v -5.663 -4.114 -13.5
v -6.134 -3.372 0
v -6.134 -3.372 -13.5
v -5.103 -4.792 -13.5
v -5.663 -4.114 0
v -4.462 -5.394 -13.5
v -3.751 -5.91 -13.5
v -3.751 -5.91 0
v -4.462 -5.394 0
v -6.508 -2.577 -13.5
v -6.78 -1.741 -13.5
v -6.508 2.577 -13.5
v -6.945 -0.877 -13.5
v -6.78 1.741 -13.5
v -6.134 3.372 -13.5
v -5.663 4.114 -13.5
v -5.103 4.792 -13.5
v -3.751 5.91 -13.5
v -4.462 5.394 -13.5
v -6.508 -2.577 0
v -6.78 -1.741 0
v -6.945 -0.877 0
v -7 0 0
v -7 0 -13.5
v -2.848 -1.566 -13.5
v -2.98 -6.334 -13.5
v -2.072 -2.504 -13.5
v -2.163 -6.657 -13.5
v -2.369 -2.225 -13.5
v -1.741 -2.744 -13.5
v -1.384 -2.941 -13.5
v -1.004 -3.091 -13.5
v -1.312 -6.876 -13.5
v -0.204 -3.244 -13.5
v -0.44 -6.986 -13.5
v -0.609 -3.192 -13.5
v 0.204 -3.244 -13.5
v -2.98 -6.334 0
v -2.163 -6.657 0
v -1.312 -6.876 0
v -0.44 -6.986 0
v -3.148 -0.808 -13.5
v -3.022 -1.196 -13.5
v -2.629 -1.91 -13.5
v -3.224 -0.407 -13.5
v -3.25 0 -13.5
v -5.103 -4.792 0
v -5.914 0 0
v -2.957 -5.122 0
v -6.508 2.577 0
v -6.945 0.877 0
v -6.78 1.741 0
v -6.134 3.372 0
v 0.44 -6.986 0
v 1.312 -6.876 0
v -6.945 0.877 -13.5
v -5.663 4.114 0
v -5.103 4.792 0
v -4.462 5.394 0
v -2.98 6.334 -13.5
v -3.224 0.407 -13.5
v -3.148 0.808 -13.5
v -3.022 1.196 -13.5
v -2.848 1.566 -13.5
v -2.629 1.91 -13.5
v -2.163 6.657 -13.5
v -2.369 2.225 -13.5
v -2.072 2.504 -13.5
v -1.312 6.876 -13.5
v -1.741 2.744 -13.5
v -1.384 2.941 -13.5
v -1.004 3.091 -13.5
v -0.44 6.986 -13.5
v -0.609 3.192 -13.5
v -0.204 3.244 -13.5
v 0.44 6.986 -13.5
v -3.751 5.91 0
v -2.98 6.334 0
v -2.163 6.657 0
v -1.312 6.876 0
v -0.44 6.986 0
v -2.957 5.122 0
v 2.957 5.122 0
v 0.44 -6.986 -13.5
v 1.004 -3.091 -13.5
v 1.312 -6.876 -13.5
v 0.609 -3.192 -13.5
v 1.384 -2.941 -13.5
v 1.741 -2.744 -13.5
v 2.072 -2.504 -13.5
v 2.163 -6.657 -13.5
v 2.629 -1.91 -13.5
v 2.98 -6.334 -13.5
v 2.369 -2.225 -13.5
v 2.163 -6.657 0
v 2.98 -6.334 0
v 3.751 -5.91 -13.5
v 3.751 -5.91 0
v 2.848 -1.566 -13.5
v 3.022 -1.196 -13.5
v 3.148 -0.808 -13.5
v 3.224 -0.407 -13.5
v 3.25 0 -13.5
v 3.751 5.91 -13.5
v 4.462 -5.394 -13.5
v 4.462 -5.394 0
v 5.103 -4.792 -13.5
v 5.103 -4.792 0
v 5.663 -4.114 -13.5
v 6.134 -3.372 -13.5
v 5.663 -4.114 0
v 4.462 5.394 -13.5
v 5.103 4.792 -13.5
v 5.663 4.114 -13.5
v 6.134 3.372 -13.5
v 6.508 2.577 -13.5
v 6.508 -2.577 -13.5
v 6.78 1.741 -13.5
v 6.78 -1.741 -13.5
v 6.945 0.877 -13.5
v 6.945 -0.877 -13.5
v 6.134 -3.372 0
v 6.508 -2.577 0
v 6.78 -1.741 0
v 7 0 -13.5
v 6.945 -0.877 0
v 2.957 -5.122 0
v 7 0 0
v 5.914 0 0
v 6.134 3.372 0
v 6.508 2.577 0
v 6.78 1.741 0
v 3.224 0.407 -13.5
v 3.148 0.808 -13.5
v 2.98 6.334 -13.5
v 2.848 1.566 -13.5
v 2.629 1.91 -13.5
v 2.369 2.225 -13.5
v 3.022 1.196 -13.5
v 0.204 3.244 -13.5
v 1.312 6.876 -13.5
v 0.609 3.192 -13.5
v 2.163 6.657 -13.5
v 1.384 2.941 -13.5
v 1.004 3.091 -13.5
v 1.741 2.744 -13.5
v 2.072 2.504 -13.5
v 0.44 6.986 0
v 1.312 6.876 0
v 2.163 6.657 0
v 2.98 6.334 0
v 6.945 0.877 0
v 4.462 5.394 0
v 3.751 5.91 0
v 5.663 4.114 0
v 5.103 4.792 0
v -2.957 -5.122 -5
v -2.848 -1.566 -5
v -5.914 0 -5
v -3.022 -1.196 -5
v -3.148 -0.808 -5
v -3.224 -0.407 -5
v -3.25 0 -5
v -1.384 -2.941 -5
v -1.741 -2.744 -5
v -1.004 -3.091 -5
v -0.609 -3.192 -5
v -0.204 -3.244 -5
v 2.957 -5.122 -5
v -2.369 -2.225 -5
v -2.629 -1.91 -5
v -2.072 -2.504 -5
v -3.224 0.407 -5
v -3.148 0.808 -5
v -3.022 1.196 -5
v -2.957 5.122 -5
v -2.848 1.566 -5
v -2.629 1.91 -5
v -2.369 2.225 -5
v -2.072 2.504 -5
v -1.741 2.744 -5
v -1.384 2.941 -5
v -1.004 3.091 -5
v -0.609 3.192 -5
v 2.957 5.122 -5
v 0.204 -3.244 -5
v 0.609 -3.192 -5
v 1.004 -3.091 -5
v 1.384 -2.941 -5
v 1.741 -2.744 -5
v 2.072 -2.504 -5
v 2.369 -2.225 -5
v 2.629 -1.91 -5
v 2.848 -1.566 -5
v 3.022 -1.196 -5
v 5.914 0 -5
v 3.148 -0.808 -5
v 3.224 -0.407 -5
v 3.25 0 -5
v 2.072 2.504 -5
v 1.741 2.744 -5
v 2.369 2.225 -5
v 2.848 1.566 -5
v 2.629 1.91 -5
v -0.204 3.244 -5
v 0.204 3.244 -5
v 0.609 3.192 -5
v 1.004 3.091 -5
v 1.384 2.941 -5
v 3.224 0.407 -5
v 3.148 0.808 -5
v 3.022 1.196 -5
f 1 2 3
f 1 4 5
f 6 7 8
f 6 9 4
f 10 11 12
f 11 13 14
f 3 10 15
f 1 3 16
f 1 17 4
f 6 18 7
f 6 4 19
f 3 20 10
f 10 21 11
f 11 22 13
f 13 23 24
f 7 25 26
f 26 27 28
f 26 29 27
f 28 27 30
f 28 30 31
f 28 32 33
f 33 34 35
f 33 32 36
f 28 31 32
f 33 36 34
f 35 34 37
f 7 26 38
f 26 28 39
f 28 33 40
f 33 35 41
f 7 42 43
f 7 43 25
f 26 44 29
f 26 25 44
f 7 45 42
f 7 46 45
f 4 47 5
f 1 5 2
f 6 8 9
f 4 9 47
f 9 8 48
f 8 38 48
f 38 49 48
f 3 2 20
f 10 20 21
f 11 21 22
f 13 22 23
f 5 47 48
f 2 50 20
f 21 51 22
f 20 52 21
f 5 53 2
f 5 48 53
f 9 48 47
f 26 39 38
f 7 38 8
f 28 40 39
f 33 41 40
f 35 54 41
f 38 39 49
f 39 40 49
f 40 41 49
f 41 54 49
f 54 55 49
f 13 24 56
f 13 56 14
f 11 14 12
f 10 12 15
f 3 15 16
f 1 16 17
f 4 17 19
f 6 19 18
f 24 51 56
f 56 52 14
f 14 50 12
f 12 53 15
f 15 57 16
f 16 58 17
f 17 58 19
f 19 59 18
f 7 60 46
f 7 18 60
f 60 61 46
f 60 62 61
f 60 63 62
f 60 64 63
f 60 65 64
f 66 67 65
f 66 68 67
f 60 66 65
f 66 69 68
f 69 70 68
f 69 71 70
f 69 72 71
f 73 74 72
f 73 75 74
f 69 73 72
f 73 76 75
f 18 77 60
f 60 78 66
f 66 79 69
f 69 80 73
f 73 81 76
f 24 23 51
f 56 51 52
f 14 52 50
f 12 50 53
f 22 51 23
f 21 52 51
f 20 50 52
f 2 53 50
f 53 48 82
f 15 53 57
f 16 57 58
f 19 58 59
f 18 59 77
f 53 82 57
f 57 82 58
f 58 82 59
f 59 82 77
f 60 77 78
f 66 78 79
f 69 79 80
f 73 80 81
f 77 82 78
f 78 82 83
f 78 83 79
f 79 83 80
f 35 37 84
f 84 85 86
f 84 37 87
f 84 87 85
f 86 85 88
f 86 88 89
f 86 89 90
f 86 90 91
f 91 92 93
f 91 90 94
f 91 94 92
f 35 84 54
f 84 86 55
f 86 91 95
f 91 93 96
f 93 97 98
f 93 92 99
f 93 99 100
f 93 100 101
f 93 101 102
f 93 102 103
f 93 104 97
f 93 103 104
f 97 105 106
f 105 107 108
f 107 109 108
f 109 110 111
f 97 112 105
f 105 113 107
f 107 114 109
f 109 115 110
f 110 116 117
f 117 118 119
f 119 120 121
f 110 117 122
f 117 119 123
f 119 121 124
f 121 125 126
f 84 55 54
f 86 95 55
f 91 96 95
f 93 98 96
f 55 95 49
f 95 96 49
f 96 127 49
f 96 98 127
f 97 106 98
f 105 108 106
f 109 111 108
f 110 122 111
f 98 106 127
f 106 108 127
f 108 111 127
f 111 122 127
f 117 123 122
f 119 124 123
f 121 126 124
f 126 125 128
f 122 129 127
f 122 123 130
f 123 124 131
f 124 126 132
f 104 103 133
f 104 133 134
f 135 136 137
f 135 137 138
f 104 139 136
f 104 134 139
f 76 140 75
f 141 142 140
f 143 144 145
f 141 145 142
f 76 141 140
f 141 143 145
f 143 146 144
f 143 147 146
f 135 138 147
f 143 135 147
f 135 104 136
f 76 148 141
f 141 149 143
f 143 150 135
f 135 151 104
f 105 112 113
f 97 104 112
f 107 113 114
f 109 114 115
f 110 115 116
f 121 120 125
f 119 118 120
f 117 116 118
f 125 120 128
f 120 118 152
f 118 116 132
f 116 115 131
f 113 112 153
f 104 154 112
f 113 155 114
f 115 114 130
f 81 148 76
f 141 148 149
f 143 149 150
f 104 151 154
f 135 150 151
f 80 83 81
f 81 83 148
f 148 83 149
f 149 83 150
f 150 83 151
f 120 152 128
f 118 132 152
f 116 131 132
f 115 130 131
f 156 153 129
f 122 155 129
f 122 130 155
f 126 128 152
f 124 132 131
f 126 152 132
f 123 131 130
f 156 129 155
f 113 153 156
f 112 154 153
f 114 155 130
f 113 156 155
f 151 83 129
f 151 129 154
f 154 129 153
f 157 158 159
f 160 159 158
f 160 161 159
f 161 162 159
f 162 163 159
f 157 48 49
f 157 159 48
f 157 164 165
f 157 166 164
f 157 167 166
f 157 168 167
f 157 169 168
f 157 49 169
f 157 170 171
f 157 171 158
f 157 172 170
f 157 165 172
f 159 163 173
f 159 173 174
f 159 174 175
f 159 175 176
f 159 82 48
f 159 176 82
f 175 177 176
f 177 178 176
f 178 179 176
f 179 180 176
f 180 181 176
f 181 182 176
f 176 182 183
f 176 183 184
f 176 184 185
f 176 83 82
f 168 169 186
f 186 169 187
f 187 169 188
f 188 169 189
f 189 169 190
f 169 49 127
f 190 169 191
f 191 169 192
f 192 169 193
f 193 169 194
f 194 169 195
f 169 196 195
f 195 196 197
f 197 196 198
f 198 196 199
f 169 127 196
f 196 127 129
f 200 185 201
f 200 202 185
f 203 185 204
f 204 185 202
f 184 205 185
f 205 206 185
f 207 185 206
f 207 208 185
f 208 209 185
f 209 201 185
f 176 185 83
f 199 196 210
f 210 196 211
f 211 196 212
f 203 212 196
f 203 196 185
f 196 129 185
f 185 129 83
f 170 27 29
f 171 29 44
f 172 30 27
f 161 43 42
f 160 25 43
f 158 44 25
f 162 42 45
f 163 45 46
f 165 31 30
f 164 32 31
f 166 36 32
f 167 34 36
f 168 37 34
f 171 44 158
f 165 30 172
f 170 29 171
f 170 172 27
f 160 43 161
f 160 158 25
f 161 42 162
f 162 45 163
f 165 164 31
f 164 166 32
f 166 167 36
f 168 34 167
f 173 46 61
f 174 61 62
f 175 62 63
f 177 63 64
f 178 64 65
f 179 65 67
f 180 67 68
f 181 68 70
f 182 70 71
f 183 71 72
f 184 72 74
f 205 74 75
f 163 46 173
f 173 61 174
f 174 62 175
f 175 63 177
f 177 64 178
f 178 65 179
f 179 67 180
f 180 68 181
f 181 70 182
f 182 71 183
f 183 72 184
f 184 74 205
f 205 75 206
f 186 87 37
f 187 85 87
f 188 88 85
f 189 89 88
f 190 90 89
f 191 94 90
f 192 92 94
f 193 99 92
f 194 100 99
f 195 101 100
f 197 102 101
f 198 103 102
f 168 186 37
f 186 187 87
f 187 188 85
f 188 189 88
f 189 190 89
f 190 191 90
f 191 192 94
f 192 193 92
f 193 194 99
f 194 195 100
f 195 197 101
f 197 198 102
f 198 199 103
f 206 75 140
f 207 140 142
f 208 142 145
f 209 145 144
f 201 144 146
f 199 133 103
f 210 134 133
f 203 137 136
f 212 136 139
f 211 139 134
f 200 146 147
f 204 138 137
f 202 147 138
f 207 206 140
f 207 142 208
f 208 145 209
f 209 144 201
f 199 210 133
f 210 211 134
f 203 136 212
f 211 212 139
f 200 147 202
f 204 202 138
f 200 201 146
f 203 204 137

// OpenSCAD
$fn = 50;

difference() {
	union() {
		translate(v = [0, 0, -13.5]) {
			cylinder(h = 13.5, r = 7.0);
		}
		#translate(v = [0, 0, -15.0]) {
			cylinder(h = 15, r = 2.875);
		}
	}
	union() {
		translate(v = [0, 0, 0]) {
			rotate(a = [0, 0, 0]) {
				difference() {
					union() {
						translate(v = [0, 0, -5]) {
							linear_extrude(height = 5) {
								polygon(points = [[5.914249999999999, 0.0], [2.957125, 5.1218907443321156], [-2.9571249999999982, 5.1218907443321156], [-5.914249999999999, 7.242867331857232e-16], [-2.9571250000000022, -5.121890744332115], [2.9571249999999956, -5.121890744332118]]);
							}
						}
					}
					union();
				}
			}
		}
		#translate(v = [0, 0, -100.0]) {
			cylinder(h = 200, r = 3.25);
		}
	}
}
